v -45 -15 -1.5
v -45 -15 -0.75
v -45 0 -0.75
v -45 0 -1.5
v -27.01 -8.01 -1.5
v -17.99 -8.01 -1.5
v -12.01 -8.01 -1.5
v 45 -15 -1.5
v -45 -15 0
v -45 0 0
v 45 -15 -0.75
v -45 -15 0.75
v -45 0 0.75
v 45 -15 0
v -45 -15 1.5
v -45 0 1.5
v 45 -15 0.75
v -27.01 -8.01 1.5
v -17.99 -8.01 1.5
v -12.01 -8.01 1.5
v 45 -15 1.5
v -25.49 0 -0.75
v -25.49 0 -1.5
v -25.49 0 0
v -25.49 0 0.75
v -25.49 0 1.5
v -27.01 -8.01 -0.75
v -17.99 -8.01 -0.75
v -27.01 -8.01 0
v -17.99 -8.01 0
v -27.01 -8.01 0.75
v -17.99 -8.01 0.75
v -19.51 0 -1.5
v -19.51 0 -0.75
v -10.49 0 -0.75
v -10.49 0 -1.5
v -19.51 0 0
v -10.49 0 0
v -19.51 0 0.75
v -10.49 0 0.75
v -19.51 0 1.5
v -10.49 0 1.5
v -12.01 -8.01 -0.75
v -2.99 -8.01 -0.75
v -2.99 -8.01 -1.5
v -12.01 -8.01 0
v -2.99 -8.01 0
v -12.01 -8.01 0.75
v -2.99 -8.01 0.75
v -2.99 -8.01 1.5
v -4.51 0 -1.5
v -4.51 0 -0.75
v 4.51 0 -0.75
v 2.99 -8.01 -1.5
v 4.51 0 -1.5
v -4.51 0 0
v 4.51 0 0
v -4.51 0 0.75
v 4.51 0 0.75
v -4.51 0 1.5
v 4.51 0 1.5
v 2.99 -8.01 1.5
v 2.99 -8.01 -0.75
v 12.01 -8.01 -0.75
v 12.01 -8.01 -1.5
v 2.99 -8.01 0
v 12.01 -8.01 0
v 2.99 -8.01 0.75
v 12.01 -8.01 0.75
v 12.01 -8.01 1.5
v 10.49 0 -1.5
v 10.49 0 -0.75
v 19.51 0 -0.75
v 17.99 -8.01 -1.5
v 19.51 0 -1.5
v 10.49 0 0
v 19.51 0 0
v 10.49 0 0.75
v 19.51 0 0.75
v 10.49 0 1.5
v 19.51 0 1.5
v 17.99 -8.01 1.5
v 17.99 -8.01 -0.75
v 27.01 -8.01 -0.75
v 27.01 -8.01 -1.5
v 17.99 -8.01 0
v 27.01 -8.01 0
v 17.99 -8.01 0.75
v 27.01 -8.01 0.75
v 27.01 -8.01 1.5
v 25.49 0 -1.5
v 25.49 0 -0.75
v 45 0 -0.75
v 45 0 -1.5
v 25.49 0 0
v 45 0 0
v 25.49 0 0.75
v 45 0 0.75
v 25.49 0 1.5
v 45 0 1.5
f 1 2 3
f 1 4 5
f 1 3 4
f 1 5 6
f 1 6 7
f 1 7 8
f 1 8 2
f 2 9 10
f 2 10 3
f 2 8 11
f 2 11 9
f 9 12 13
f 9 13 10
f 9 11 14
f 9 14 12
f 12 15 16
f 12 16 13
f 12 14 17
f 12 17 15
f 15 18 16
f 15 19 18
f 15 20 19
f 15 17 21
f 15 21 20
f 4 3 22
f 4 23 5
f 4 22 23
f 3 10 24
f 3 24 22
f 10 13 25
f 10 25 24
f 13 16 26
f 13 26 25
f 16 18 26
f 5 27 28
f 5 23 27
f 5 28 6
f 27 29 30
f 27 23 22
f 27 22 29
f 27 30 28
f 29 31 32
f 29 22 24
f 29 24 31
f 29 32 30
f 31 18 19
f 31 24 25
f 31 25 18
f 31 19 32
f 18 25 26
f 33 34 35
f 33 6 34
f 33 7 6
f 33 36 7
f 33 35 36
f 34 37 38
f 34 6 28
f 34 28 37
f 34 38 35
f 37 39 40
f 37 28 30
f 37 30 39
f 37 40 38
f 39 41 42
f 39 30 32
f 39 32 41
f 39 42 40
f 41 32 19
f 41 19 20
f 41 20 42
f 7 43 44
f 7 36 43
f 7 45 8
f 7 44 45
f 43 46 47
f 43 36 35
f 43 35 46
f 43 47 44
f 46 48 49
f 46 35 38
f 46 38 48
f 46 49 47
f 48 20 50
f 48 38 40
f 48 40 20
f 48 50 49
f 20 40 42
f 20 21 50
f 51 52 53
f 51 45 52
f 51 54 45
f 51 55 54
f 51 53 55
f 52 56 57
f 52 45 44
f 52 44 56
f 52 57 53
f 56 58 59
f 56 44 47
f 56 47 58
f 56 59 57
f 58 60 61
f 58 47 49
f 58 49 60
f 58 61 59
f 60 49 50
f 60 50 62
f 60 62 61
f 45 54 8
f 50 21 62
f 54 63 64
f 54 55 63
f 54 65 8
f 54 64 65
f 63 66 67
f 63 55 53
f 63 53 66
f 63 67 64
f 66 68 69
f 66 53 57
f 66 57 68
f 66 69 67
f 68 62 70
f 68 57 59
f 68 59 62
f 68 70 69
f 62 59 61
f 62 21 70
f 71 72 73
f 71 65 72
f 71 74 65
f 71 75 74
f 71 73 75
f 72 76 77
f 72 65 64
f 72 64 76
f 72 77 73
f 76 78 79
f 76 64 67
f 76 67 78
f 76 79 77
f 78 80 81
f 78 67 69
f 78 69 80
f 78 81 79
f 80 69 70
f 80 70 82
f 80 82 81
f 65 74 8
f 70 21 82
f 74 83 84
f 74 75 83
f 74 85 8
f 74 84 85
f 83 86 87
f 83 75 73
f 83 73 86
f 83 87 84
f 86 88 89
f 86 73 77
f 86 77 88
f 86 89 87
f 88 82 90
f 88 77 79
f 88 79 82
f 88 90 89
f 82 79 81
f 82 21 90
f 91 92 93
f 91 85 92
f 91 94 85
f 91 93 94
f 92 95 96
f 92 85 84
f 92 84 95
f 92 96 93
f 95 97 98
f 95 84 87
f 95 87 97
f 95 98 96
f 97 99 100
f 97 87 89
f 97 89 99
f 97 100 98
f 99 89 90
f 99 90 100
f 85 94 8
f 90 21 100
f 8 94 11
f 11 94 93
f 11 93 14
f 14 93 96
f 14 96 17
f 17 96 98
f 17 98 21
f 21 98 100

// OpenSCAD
// Start: lazy_union
default_5_default_5();
// End: lazy_union

// Modules.

// 'PartMaterial undef-default - default 5.0'
module default_5_default_5() {
  // 'None : _combine_solids_and_holes'
  union() {
    // 'upper : _combine_solids_and_holes'
    union() {
      // 'front'
      multmatrix(m=[[-1.0, 0.0, 0.0, 0.0], [0.0, -1.0, 0.0, 0.0], [0.0, 0.0, 1.0, -1.5], [0.0, 0.0, 0.0, 1.0]]) {
        // 'front : _combine_solids_and_holes'
        union() {
          // 'front'
          linear_extrude(height=3.0, twist=0.0, slices=4, scale=[1.0, 1.0]) {
            polygon(points=[[0.0, 0.0], [0.0, 0.0], [-4.51, 0.0], [-2.99, 8.01], [-7.5, 8.01], [-12.01, 8.01], [-10.49, 0.0], [-15.0, 0.0], [-15.0, 0.0], [-19.509999999999998, 0.0], [-17.990000000000002, 8.01], [-22.5, 8.01], [-27.009999999999998, 8.01], [-25.490000000000002, 0.0], [-30.0, 0.0], [-45.0, 0.0], [-45.0, 15.0], [0.0, 15.0], [45.0, 15.0], [45.0, 0.0], [30.0, 0.0], [30.0, 0.0], [25.490000000000002, 0.0], [27.009999999999998, 8.01], [22.5, 8.01], [17.990000000000002, 8.01], [19.509999999999998, 0.0], [15.0, 0.0], [15.0, 0.0], [10.49, 0.0], [12.01, 8.01], [7.5, 8.01], [2.99, 8.01], [4.51, 0.0], [0.0, 0.0]], paths=[[0], [1, 2, 3, 4, 5, 6, 7, 1], [8, 9, 10, 11, 12, 13, 14, 15, 16, 17, 18, 19, 20, 8], [21, 22, 23, 24, 25, 26, 27, 21], [28, 29, 30, 31, 32, 33, 34, 28]]);
          }
        }
      }
    }
  }
} // end module default_5_default_5
